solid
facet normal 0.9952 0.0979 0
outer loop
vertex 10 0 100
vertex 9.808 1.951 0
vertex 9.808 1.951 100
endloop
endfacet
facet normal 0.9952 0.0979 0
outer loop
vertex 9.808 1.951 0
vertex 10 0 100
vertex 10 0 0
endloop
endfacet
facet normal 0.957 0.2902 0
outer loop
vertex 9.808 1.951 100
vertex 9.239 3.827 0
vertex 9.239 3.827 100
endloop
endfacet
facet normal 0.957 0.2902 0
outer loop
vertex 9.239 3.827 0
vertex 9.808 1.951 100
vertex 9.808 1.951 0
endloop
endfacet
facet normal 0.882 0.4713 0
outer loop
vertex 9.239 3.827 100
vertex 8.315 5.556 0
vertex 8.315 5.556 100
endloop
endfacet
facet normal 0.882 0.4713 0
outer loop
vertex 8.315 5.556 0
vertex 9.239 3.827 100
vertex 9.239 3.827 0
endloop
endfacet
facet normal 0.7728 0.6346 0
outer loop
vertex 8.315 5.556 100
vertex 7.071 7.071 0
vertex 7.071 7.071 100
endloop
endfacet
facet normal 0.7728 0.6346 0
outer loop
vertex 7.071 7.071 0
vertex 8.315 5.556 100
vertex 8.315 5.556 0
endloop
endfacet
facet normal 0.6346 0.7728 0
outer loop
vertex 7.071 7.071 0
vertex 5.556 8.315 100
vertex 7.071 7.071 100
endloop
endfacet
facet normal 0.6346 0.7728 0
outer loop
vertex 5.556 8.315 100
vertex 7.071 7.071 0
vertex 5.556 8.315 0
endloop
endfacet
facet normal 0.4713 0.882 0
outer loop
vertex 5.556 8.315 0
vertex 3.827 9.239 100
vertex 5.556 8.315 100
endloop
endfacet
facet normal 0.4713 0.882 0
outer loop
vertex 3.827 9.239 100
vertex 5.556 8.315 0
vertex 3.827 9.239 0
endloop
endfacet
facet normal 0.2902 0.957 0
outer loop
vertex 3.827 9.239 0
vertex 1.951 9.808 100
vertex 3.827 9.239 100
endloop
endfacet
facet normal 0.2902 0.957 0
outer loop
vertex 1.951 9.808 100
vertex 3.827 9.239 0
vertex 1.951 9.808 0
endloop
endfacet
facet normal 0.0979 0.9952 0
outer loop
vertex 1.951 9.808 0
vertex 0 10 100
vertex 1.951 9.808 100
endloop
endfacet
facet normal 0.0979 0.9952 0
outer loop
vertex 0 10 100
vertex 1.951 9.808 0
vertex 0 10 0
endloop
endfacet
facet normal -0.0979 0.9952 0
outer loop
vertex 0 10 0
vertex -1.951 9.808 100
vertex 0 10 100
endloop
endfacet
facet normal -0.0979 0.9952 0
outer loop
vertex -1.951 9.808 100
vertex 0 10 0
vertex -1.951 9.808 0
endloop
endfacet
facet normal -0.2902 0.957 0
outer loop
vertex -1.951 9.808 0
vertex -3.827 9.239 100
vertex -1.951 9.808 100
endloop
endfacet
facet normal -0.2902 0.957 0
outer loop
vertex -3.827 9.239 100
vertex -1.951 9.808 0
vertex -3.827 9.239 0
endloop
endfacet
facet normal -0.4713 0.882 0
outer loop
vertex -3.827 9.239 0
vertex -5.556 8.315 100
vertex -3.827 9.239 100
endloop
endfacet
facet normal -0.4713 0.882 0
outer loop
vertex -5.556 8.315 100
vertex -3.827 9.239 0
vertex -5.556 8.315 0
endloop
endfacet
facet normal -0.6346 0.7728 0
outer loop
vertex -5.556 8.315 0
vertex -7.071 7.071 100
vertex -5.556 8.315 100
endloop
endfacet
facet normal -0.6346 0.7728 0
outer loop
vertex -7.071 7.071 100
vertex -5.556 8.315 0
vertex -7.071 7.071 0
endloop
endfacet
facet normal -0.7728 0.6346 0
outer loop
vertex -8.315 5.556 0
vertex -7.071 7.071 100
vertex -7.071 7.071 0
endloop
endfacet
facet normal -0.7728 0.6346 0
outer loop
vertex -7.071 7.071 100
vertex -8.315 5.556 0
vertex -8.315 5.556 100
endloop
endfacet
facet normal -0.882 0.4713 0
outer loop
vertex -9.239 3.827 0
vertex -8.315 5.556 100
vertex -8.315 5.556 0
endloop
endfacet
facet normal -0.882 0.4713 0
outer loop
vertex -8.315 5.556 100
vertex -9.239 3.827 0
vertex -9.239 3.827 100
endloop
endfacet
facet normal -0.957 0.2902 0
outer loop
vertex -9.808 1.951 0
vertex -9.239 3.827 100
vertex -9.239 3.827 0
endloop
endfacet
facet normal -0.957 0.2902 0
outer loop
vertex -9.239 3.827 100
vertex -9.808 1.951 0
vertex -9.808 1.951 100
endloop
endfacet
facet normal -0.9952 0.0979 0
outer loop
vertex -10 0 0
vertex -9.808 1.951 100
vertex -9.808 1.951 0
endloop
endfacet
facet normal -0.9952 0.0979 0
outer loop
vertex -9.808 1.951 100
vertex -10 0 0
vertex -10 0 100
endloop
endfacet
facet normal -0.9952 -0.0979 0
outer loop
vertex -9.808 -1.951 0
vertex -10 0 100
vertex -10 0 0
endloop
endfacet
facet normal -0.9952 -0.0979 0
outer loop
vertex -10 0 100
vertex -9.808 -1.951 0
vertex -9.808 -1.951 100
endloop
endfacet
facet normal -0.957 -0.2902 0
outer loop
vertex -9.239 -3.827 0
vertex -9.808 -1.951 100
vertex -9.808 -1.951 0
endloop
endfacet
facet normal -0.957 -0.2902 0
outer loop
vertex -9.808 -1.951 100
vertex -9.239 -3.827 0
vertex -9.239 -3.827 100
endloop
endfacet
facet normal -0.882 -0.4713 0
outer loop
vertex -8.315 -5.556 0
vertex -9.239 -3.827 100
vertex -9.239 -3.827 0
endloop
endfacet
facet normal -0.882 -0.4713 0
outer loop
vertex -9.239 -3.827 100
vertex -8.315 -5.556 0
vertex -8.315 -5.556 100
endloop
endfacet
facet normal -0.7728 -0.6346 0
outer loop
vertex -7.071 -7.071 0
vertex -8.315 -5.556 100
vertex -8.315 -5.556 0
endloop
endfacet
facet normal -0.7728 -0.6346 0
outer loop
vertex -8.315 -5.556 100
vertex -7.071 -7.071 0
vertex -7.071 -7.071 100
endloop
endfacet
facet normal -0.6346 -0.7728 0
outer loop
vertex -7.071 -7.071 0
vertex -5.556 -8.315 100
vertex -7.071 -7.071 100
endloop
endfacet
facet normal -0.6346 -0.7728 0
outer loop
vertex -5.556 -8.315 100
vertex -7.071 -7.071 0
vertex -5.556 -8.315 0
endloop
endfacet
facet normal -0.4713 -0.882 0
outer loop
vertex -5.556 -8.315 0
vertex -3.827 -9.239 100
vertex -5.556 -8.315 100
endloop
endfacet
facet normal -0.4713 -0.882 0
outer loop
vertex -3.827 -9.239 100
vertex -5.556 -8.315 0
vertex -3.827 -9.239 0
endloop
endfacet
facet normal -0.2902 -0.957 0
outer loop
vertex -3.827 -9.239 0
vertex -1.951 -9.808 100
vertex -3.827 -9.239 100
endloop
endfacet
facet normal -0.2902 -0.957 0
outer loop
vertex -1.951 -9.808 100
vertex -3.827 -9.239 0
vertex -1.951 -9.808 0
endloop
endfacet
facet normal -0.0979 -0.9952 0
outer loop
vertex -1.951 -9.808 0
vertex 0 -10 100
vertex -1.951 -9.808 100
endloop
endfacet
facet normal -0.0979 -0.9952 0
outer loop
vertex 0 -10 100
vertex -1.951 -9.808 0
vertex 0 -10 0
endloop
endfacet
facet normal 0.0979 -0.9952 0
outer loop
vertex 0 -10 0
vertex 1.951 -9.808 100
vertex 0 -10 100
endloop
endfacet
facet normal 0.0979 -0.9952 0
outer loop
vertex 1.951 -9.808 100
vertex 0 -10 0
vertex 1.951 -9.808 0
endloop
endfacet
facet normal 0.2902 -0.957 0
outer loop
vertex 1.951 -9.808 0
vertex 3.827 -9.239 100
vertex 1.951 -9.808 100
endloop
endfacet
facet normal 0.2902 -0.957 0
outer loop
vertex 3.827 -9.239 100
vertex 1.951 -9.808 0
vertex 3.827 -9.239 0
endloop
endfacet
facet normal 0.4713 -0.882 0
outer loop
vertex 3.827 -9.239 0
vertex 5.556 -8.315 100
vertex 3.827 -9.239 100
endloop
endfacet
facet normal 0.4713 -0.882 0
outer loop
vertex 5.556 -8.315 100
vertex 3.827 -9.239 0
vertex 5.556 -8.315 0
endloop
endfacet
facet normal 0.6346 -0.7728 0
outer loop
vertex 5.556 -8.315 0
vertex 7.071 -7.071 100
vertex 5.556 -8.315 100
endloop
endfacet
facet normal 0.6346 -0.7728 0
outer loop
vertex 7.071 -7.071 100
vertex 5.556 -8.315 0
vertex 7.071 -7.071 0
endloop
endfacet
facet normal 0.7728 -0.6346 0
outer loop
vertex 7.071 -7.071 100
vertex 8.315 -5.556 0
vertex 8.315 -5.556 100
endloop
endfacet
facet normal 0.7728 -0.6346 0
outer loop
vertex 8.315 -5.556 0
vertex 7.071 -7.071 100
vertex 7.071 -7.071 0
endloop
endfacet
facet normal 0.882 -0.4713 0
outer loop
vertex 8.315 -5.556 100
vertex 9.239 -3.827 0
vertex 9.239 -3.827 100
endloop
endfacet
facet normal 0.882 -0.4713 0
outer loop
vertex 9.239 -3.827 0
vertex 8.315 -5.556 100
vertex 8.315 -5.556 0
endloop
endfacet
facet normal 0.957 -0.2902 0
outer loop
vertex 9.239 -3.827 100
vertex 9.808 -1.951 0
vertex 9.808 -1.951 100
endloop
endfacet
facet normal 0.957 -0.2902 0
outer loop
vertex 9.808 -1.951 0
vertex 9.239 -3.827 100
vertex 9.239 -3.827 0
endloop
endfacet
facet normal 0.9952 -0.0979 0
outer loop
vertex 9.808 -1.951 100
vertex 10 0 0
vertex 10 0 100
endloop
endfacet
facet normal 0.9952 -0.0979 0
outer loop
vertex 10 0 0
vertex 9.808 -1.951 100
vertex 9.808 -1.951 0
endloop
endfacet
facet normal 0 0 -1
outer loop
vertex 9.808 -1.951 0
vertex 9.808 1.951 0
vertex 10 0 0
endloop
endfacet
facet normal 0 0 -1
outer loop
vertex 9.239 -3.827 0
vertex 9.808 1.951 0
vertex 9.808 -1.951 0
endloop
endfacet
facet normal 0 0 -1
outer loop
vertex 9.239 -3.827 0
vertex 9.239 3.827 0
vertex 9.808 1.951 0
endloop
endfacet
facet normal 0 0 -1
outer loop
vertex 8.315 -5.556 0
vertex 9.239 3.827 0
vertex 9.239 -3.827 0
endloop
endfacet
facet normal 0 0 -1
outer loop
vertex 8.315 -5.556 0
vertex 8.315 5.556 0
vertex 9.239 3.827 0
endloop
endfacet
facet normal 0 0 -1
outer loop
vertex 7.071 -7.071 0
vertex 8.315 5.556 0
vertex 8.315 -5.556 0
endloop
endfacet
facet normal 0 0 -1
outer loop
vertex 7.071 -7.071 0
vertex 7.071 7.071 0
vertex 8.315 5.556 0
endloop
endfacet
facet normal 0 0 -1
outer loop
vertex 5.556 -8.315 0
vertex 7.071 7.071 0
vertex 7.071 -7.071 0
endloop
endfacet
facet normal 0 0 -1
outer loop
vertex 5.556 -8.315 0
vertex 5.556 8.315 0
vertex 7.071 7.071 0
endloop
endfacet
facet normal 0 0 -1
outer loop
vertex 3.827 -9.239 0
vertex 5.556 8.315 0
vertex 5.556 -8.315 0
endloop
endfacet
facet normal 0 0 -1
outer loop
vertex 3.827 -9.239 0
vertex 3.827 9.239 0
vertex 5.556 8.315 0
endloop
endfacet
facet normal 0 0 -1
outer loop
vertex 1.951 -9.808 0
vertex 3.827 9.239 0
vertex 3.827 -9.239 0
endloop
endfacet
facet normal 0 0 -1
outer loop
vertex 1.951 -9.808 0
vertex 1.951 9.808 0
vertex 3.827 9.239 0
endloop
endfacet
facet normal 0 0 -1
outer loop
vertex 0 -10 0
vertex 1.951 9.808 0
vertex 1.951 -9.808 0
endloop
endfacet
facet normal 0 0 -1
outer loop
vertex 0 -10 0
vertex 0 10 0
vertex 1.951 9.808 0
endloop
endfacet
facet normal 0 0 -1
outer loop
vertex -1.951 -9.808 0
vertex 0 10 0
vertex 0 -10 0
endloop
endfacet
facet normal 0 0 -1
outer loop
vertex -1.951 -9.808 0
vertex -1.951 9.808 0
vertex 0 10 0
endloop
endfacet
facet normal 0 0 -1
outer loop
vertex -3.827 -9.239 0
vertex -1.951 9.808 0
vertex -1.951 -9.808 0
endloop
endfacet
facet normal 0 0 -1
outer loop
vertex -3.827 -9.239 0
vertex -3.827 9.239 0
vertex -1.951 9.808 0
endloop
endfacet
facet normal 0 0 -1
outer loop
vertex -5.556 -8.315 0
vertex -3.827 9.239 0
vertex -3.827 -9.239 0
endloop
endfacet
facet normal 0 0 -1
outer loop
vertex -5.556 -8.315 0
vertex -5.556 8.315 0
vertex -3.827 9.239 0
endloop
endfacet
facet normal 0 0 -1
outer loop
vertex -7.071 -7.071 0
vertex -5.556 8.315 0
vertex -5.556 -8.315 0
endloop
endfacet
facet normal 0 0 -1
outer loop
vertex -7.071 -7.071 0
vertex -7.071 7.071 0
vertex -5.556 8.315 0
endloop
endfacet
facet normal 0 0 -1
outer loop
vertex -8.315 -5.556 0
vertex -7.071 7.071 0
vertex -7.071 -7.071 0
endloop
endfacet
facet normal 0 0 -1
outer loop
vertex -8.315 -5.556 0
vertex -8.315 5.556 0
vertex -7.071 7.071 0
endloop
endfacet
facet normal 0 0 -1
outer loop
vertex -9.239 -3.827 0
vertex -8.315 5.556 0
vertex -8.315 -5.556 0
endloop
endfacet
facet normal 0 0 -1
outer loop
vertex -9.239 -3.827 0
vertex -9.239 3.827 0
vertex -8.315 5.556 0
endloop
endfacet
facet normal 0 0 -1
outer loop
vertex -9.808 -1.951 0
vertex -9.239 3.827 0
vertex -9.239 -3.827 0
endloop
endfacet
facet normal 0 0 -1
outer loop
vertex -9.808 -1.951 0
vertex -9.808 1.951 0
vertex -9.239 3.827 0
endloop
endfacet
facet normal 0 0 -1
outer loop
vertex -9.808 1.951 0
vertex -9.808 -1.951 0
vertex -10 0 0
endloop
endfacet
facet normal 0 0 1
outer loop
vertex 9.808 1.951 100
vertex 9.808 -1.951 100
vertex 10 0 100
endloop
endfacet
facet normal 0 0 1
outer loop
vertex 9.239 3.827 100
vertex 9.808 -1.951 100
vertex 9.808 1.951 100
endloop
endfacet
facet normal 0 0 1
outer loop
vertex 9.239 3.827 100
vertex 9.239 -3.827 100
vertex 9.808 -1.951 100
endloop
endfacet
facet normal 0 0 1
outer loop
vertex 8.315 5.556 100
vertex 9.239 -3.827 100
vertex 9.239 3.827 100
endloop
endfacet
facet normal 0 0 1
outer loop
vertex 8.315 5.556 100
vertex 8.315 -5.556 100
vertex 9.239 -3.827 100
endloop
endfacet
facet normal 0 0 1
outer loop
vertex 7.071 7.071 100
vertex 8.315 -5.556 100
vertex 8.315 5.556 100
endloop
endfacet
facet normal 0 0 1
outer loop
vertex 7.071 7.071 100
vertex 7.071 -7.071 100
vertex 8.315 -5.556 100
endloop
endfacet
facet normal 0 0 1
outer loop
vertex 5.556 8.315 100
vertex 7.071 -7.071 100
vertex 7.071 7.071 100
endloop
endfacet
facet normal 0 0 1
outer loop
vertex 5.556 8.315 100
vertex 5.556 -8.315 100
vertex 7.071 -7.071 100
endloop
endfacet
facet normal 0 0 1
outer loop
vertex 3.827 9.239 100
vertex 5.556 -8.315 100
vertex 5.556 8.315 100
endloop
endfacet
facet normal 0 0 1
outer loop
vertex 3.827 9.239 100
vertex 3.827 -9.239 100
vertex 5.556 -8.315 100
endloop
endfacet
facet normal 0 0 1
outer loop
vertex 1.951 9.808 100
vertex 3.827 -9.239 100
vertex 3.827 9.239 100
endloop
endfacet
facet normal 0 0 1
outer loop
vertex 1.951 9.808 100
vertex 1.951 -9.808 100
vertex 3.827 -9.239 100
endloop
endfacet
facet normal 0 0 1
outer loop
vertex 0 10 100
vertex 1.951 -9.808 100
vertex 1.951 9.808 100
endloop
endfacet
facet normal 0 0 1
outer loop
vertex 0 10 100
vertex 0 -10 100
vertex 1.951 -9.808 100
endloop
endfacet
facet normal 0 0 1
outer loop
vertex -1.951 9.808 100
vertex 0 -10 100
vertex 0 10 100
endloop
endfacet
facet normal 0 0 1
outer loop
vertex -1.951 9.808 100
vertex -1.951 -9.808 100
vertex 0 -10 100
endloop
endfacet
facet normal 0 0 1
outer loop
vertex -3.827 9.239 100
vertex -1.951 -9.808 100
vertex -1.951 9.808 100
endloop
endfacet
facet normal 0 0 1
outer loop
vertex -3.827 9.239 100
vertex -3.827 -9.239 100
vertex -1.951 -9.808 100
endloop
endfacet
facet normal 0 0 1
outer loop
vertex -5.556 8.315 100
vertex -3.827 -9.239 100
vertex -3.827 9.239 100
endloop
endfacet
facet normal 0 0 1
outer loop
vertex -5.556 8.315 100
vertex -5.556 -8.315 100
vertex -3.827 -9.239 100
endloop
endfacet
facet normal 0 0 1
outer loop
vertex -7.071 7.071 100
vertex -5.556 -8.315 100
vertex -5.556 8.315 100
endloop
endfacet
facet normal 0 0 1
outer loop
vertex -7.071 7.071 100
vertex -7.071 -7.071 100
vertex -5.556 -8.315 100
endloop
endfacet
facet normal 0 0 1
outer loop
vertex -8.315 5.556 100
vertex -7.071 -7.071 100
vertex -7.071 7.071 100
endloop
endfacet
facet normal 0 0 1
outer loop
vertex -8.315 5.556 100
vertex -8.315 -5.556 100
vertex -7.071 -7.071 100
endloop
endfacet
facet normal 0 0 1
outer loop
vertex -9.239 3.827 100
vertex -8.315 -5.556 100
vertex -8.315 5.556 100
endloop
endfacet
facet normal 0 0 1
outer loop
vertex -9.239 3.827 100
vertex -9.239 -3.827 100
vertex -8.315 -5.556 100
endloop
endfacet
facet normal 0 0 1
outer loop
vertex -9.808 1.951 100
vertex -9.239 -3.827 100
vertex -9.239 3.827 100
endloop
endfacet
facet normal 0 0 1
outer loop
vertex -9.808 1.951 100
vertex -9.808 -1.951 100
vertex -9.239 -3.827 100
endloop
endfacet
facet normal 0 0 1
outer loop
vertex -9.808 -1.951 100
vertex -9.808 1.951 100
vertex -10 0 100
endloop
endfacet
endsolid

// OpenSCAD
module branch(length, radius, segments=32) {
  cylinder(h = length, r = radius, $fn = segments);
}

branch(length = 100, radius = 10, segments = 32);
